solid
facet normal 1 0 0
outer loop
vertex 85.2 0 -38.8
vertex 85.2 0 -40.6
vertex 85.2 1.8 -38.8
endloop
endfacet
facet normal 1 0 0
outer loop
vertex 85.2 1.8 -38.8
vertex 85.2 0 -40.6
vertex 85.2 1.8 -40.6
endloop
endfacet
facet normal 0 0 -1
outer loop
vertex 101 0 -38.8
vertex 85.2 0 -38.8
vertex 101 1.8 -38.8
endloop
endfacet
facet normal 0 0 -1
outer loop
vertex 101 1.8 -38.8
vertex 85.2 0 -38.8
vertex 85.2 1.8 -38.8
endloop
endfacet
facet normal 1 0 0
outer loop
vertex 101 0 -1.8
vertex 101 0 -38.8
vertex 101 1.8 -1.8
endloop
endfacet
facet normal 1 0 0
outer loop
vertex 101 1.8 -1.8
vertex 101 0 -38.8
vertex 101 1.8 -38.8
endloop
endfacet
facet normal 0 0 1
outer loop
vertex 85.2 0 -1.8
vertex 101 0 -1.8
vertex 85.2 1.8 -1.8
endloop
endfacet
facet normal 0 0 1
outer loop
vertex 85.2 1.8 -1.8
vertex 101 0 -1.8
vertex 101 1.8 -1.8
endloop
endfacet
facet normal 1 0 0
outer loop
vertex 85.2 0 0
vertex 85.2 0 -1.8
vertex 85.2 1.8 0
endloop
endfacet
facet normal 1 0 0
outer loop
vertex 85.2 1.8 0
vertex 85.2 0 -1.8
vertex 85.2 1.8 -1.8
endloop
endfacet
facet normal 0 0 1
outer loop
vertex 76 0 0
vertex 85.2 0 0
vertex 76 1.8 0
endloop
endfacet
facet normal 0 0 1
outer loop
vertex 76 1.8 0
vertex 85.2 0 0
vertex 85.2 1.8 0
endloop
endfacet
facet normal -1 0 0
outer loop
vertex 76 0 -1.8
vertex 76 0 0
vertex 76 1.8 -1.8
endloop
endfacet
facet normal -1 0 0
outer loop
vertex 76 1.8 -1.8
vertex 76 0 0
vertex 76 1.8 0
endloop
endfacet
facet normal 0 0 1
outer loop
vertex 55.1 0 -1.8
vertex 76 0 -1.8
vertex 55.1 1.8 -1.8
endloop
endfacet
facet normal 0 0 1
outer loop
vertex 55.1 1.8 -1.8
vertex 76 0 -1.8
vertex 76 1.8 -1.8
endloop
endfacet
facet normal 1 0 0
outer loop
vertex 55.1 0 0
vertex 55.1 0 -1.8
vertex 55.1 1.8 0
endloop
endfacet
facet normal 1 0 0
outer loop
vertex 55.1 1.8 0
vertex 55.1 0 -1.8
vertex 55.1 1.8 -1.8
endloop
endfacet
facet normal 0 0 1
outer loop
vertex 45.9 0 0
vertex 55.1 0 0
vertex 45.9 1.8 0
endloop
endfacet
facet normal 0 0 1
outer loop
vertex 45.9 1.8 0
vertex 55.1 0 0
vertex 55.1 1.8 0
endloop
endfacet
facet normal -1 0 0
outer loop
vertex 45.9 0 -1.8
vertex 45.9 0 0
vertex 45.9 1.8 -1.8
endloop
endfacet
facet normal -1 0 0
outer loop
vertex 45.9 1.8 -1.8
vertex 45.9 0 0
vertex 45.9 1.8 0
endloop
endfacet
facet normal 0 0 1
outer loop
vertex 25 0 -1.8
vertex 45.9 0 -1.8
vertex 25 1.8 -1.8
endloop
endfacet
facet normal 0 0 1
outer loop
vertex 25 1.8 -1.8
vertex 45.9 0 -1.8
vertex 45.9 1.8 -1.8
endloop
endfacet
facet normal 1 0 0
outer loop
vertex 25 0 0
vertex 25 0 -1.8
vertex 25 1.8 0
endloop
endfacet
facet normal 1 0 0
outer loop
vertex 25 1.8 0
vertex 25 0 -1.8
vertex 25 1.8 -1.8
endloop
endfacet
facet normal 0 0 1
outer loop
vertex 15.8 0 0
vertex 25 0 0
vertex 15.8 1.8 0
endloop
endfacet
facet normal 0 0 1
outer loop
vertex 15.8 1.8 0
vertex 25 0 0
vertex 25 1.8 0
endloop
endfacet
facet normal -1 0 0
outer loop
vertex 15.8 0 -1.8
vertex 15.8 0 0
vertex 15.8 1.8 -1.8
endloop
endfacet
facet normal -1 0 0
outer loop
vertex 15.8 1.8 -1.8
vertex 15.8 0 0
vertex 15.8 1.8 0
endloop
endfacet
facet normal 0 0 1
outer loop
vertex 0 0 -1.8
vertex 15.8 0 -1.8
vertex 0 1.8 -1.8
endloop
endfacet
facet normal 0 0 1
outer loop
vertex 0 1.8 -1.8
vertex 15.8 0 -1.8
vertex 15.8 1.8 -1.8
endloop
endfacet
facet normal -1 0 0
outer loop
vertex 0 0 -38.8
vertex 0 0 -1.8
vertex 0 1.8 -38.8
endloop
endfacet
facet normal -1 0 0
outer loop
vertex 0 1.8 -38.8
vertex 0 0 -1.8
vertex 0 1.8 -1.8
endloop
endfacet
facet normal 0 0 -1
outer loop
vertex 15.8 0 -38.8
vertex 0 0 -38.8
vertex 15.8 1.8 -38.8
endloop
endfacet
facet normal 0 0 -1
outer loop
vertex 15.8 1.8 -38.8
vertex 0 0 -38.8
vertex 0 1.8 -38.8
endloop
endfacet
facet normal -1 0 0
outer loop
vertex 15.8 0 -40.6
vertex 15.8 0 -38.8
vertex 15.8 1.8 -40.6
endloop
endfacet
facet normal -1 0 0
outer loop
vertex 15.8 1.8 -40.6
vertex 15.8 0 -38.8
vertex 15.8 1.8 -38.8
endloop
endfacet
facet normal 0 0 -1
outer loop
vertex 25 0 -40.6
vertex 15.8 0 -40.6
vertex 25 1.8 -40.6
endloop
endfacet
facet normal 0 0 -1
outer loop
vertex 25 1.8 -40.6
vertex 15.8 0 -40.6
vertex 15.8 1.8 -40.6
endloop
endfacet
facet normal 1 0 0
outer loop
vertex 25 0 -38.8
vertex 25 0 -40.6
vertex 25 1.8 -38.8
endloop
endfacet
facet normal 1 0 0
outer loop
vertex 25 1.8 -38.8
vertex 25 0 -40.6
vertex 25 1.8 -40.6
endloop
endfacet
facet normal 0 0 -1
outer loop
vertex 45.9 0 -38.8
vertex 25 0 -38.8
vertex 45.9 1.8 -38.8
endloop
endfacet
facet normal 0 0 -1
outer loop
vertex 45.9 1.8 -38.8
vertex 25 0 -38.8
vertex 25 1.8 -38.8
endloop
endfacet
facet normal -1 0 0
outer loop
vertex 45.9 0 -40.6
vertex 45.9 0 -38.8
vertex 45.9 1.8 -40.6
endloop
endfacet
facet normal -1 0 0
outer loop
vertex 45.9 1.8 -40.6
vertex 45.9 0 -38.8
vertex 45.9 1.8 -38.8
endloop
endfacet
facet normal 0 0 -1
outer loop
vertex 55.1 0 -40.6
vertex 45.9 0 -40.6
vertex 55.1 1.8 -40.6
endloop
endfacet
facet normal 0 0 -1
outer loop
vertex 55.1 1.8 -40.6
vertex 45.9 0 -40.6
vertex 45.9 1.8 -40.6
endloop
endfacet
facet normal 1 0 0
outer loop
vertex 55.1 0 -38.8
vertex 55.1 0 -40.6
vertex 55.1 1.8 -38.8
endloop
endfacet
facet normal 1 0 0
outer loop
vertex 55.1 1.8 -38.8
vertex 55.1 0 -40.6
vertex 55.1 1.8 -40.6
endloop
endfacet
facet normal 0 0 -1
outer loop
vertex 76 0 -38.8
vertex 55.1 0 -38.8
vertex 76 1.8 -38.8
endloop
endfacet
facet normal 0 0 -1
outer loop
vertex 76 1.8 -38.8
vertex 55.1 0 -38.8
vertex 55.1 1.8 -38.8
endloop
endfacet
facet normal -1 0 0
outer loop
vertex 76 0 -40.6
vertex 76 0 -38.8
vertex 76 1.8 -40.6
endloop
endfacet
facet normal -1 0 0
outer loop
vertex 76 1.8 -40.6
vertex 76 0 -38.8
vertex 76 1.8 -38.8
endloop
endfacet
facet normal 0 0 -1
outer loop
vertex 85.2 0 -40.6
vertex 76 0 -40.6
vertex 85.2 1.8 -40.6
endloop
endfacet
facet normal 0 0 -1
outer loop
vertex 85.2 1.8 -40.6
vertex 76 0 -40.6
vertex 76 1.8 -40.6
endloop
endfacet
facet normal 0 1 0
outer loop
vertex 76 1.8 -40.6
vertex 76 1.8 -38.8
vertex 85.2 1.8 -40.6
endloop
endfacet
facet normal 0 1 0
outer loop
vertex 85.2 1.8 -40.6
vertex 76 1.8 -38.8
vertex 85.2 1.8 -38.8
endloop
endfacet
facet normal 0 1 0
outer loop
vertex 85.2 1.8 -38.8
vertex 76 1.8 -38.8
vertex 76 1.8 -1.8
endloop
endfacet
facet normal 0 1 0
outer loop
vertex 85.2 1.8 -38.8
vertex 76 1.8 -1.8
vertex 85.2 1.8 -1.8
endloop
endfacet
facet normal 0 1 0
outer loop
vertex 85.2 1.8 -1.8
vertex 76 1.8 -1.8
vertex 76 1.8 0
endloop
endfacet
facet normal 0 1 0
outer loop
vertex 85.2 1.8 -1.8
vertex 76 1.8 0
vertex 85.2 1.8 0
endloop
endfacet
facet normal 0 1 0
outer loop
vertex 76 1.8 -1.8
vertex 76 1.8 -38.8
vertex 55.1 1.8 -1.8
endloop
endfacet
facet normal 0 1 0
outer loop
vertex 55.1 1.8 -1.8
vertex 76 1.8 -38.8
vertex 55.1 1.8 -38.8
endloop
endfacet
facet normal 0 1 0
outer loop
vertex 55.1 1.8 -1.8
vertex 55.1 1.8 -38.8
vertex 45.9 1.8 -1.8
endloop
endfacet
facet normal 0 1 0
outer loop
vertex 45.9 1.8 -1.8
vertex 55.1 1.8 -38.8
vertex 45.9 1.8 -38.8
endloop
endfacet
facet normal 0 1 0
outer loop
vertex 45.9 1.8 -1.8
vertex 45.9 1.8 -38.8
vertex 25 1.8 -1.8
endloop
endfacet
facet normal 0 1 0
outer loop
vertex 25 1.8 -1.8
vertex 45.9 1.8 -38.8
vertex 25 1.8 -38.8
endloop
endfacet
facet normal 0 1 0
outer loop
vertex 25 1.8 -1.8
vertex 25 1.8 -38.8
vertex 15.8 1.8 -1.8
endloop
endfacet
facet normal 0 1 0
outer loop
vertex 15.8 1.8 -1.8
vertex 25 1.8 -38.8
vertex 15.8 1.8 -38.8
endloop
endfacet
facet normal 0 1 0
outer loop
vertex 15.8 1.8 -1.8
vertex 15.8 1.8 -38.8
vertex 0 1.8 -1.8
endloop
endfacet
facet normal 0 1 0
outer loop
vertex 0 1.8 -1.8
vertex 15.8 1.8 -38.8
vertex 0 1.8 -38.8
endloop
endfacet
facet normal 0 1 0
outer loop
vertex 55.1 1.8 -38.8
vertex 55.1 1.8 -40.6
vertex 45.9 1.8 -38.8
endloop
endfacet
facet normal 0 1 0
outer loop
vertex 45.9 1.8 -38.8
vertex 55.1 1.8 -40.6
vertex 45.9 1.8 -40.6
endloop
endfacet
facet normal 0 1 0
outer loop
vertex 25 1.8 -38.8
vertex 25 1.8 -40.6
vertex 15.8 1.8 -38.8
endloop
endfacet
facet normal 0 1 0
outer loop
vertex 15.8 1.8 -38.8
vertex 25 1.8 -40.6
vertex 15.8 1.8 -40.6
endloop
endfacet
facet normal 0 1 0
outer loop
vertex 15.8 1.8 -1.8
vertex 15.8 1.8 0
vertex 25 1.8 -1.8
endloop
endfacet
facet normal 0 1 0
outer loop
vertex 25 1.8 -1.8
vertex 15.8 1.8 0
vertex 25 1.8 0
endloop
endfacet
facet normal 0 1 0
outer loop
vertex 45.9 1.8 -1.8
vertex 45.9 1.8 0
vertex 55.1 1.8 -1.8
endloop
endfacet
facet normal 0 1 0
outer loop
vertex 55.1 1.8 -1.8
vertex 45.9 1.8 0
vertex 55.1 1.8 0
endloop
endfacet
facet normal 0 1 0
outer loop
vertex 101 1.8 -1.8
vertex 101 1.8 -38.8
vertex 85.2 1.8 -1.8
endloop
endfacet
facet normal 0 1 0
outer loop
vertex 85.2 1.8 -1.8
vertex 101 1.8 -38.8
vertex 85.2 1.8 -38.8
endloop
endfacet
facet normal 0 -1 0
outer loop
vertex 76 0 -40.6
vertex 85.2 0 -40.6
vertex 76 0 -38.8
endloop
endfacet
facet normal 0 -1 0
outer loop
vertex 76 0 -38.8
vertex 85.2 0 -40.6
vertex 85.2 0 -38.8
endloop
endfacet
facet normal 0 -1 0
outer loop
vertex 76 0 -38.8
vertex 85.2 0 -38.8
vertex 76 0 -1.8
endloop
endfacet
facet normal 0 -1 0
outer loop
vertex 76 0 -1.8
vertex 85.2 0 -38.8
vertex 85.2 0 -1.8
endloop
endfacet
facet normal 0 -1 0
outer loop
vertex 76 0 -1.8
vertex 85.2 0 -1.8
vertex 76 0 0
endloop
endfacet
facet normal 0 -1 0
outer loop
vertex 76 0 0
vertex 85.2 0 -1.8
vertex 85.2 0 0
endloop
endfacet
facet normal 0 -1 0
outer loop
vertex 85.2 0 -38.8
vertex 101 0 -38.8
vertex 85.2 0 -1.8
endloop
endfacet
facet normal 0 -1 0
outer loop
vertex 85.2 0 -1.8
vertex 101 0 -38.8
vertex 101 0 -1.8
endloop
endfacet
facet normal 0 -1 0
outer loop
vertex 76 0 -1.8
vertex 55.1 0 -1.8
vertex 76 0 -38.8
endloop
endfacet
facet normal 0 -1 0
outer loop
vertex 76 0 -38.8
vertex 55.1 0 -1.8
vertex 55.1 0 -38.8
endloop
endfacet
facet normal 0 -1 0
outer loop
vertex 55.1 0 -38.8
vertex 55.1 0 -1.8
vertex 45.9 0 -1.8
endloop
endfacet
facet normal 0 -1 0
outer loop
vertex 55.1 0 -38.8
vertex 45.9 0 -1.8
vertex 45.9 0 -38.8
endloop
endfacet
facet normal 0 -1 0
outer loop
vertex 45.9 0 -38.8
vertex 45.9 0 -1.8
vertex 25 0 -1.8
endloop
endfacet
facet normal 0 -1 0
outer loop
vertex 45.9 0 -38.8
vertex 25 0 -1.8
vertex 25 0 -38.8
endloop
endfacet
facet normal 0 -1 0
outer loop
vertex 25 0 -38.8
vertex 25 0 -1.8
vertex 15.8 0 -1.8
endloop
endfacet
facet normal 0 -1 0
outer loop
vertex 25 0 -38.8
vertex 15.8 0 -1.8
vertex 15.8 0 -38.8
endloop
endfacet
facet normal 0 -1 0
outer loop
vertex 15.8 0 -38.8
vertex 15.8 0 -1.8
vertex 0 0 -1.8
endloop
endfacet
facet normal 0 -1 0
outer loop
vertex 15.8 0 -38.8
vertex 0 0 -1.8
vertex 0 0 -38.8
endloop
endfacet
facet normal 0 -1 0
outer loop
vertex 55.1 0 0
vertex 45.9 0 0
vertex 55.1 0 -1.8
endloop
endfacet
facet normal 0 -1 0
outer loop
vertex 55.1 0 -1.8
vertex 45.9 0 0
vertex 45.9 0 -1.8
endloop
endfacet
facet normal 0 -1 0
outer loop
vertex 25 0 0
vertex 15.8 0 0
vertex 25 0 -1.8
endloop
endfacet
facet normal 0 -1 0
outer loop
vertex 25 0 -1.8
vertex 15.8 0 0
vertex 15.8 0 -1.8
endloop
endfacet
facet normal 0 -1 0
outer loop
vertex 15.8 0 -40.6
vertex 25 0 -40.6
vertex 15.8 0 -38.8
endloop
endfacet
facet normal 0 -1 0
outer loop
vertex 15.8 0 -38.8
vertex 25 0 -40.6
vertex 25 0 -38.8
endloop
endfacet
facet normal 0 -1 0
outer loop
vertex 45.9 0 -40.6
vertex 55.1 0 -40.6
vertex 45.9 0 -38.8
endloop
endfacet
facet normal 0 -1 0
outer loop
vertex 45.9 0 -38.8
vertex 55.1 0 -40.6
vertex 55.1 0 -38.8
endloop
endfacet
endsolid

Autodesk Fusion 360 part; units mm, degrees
sketch "Skizze1" plane through (0, 0, 0) normal (0, 1, 0) x (1, 0, 0)
  line L0 (0, 0) -> (101, 0)
  line L1 (101, 0) -> (101, 40.6)
  line L2 (101, 40.6) -> (0, 40.6)
  line L3 (0, 40.6) -> (0, 0)
  line L4 (0, 0) -> (15.8, 0)
  line L5 (15.8, 0) -> (15.8, 1.8)
  line L6 (15.8, 1.8) -> (0, 1.8)
  line L7 (0, 1.8) -> (0, 0)
  line L8 (25, 0) -> (45.9, 0)
  line L9 (45.9, 0) -> (45.9, 1.8)
  line L10 (45.9, 1.8) -> (25, 1.8)
  line L11 (25, 1.8) -> (25, 0)
  line L12 (55.1, 0) -> (76, 0)
  line L13 (76, 0) -> (76, 1.8)
  line L14 (76, 1.8) -> (55.1, 1.8)
  line L15 (55.1, 1.8) -> (55.1, 0)
  line L16 (85.2, 0) -> (101, 0)
  line L17 (101, 0) -> (101, 1.8)
  line L18 (101, 1.8) -> (85.2, 1.8)
  line L19 (85.2, 1.8) -> (85.2, 0)
  line L20 (0, 40.6) -> (15.8, 40.6)
  line L21 (15.8, 40.6) -> (15.8, 38.8)
  line L22 (15.8, 38.8) -> (0, 38.8)
  line L23 (0, 38.8) -> (0, 40.6)
  line L24 (25, 40.6) -> (45.9, 40.6)
  line L25 (45.9, 40.6) -> (45.9, 38.8)
  line L26 (45.9, 38.8) -> (25, 38.8)
  line L27 (25, 38.8) -> (25, 40.6)
  line L28 (55.1, 40.6) -> (76, 40.6)
  line L29 (76, 40.6) -> (76, 38.8)
  line L30 (76, 38.8) -> (55.1, 38.8)
  line L31 (55.1, 38.8) -> (55.1, 40.6)
  line L32 (101, 40.6) -> (85.2, 40.6)
  line L33 (85.2, 40.6) -> (85.2, 38.8)
  line L34 (85.2, 38.8) -> (101, 38.8)
  line L35 (101, 38.8) -> (101, 40.6)
  dimension "d1" = 101
  dimension "d2" = 40.6
  dimension "d3" = 15.8
  dimension "d4" = 1.8
  dimension "d6" = 1.8
  dimension "d7" = 9.2
  dimension "d8" = 45.9
  dimension "d9" = 1.8
  dimension "d10" = 9.2
  dimension "d14" = 15.8
  dimension "d15" = 9.2
  dimension "d16" = 15.8
  dimension "d17" = 1.8
  dimension "d18" = 1.8
  dimension "d19" = 9.2
  dimension "d20" = 45.9
  dimension "d22" = 15.8
  dimension "d23" = 1.8
  dimension "d24" = 9.2
  dimension "d25" = 9.2
extrude "Extrusion1" add sketch "Skizze1" along normal blind 1.8 contours L0 L1 L2 L3 L5 L6 L9 L10 L11 L13 L14 L15 L18 L19 L21 L22 L25 L26 L27 L29 L30 L31 L33 L34
